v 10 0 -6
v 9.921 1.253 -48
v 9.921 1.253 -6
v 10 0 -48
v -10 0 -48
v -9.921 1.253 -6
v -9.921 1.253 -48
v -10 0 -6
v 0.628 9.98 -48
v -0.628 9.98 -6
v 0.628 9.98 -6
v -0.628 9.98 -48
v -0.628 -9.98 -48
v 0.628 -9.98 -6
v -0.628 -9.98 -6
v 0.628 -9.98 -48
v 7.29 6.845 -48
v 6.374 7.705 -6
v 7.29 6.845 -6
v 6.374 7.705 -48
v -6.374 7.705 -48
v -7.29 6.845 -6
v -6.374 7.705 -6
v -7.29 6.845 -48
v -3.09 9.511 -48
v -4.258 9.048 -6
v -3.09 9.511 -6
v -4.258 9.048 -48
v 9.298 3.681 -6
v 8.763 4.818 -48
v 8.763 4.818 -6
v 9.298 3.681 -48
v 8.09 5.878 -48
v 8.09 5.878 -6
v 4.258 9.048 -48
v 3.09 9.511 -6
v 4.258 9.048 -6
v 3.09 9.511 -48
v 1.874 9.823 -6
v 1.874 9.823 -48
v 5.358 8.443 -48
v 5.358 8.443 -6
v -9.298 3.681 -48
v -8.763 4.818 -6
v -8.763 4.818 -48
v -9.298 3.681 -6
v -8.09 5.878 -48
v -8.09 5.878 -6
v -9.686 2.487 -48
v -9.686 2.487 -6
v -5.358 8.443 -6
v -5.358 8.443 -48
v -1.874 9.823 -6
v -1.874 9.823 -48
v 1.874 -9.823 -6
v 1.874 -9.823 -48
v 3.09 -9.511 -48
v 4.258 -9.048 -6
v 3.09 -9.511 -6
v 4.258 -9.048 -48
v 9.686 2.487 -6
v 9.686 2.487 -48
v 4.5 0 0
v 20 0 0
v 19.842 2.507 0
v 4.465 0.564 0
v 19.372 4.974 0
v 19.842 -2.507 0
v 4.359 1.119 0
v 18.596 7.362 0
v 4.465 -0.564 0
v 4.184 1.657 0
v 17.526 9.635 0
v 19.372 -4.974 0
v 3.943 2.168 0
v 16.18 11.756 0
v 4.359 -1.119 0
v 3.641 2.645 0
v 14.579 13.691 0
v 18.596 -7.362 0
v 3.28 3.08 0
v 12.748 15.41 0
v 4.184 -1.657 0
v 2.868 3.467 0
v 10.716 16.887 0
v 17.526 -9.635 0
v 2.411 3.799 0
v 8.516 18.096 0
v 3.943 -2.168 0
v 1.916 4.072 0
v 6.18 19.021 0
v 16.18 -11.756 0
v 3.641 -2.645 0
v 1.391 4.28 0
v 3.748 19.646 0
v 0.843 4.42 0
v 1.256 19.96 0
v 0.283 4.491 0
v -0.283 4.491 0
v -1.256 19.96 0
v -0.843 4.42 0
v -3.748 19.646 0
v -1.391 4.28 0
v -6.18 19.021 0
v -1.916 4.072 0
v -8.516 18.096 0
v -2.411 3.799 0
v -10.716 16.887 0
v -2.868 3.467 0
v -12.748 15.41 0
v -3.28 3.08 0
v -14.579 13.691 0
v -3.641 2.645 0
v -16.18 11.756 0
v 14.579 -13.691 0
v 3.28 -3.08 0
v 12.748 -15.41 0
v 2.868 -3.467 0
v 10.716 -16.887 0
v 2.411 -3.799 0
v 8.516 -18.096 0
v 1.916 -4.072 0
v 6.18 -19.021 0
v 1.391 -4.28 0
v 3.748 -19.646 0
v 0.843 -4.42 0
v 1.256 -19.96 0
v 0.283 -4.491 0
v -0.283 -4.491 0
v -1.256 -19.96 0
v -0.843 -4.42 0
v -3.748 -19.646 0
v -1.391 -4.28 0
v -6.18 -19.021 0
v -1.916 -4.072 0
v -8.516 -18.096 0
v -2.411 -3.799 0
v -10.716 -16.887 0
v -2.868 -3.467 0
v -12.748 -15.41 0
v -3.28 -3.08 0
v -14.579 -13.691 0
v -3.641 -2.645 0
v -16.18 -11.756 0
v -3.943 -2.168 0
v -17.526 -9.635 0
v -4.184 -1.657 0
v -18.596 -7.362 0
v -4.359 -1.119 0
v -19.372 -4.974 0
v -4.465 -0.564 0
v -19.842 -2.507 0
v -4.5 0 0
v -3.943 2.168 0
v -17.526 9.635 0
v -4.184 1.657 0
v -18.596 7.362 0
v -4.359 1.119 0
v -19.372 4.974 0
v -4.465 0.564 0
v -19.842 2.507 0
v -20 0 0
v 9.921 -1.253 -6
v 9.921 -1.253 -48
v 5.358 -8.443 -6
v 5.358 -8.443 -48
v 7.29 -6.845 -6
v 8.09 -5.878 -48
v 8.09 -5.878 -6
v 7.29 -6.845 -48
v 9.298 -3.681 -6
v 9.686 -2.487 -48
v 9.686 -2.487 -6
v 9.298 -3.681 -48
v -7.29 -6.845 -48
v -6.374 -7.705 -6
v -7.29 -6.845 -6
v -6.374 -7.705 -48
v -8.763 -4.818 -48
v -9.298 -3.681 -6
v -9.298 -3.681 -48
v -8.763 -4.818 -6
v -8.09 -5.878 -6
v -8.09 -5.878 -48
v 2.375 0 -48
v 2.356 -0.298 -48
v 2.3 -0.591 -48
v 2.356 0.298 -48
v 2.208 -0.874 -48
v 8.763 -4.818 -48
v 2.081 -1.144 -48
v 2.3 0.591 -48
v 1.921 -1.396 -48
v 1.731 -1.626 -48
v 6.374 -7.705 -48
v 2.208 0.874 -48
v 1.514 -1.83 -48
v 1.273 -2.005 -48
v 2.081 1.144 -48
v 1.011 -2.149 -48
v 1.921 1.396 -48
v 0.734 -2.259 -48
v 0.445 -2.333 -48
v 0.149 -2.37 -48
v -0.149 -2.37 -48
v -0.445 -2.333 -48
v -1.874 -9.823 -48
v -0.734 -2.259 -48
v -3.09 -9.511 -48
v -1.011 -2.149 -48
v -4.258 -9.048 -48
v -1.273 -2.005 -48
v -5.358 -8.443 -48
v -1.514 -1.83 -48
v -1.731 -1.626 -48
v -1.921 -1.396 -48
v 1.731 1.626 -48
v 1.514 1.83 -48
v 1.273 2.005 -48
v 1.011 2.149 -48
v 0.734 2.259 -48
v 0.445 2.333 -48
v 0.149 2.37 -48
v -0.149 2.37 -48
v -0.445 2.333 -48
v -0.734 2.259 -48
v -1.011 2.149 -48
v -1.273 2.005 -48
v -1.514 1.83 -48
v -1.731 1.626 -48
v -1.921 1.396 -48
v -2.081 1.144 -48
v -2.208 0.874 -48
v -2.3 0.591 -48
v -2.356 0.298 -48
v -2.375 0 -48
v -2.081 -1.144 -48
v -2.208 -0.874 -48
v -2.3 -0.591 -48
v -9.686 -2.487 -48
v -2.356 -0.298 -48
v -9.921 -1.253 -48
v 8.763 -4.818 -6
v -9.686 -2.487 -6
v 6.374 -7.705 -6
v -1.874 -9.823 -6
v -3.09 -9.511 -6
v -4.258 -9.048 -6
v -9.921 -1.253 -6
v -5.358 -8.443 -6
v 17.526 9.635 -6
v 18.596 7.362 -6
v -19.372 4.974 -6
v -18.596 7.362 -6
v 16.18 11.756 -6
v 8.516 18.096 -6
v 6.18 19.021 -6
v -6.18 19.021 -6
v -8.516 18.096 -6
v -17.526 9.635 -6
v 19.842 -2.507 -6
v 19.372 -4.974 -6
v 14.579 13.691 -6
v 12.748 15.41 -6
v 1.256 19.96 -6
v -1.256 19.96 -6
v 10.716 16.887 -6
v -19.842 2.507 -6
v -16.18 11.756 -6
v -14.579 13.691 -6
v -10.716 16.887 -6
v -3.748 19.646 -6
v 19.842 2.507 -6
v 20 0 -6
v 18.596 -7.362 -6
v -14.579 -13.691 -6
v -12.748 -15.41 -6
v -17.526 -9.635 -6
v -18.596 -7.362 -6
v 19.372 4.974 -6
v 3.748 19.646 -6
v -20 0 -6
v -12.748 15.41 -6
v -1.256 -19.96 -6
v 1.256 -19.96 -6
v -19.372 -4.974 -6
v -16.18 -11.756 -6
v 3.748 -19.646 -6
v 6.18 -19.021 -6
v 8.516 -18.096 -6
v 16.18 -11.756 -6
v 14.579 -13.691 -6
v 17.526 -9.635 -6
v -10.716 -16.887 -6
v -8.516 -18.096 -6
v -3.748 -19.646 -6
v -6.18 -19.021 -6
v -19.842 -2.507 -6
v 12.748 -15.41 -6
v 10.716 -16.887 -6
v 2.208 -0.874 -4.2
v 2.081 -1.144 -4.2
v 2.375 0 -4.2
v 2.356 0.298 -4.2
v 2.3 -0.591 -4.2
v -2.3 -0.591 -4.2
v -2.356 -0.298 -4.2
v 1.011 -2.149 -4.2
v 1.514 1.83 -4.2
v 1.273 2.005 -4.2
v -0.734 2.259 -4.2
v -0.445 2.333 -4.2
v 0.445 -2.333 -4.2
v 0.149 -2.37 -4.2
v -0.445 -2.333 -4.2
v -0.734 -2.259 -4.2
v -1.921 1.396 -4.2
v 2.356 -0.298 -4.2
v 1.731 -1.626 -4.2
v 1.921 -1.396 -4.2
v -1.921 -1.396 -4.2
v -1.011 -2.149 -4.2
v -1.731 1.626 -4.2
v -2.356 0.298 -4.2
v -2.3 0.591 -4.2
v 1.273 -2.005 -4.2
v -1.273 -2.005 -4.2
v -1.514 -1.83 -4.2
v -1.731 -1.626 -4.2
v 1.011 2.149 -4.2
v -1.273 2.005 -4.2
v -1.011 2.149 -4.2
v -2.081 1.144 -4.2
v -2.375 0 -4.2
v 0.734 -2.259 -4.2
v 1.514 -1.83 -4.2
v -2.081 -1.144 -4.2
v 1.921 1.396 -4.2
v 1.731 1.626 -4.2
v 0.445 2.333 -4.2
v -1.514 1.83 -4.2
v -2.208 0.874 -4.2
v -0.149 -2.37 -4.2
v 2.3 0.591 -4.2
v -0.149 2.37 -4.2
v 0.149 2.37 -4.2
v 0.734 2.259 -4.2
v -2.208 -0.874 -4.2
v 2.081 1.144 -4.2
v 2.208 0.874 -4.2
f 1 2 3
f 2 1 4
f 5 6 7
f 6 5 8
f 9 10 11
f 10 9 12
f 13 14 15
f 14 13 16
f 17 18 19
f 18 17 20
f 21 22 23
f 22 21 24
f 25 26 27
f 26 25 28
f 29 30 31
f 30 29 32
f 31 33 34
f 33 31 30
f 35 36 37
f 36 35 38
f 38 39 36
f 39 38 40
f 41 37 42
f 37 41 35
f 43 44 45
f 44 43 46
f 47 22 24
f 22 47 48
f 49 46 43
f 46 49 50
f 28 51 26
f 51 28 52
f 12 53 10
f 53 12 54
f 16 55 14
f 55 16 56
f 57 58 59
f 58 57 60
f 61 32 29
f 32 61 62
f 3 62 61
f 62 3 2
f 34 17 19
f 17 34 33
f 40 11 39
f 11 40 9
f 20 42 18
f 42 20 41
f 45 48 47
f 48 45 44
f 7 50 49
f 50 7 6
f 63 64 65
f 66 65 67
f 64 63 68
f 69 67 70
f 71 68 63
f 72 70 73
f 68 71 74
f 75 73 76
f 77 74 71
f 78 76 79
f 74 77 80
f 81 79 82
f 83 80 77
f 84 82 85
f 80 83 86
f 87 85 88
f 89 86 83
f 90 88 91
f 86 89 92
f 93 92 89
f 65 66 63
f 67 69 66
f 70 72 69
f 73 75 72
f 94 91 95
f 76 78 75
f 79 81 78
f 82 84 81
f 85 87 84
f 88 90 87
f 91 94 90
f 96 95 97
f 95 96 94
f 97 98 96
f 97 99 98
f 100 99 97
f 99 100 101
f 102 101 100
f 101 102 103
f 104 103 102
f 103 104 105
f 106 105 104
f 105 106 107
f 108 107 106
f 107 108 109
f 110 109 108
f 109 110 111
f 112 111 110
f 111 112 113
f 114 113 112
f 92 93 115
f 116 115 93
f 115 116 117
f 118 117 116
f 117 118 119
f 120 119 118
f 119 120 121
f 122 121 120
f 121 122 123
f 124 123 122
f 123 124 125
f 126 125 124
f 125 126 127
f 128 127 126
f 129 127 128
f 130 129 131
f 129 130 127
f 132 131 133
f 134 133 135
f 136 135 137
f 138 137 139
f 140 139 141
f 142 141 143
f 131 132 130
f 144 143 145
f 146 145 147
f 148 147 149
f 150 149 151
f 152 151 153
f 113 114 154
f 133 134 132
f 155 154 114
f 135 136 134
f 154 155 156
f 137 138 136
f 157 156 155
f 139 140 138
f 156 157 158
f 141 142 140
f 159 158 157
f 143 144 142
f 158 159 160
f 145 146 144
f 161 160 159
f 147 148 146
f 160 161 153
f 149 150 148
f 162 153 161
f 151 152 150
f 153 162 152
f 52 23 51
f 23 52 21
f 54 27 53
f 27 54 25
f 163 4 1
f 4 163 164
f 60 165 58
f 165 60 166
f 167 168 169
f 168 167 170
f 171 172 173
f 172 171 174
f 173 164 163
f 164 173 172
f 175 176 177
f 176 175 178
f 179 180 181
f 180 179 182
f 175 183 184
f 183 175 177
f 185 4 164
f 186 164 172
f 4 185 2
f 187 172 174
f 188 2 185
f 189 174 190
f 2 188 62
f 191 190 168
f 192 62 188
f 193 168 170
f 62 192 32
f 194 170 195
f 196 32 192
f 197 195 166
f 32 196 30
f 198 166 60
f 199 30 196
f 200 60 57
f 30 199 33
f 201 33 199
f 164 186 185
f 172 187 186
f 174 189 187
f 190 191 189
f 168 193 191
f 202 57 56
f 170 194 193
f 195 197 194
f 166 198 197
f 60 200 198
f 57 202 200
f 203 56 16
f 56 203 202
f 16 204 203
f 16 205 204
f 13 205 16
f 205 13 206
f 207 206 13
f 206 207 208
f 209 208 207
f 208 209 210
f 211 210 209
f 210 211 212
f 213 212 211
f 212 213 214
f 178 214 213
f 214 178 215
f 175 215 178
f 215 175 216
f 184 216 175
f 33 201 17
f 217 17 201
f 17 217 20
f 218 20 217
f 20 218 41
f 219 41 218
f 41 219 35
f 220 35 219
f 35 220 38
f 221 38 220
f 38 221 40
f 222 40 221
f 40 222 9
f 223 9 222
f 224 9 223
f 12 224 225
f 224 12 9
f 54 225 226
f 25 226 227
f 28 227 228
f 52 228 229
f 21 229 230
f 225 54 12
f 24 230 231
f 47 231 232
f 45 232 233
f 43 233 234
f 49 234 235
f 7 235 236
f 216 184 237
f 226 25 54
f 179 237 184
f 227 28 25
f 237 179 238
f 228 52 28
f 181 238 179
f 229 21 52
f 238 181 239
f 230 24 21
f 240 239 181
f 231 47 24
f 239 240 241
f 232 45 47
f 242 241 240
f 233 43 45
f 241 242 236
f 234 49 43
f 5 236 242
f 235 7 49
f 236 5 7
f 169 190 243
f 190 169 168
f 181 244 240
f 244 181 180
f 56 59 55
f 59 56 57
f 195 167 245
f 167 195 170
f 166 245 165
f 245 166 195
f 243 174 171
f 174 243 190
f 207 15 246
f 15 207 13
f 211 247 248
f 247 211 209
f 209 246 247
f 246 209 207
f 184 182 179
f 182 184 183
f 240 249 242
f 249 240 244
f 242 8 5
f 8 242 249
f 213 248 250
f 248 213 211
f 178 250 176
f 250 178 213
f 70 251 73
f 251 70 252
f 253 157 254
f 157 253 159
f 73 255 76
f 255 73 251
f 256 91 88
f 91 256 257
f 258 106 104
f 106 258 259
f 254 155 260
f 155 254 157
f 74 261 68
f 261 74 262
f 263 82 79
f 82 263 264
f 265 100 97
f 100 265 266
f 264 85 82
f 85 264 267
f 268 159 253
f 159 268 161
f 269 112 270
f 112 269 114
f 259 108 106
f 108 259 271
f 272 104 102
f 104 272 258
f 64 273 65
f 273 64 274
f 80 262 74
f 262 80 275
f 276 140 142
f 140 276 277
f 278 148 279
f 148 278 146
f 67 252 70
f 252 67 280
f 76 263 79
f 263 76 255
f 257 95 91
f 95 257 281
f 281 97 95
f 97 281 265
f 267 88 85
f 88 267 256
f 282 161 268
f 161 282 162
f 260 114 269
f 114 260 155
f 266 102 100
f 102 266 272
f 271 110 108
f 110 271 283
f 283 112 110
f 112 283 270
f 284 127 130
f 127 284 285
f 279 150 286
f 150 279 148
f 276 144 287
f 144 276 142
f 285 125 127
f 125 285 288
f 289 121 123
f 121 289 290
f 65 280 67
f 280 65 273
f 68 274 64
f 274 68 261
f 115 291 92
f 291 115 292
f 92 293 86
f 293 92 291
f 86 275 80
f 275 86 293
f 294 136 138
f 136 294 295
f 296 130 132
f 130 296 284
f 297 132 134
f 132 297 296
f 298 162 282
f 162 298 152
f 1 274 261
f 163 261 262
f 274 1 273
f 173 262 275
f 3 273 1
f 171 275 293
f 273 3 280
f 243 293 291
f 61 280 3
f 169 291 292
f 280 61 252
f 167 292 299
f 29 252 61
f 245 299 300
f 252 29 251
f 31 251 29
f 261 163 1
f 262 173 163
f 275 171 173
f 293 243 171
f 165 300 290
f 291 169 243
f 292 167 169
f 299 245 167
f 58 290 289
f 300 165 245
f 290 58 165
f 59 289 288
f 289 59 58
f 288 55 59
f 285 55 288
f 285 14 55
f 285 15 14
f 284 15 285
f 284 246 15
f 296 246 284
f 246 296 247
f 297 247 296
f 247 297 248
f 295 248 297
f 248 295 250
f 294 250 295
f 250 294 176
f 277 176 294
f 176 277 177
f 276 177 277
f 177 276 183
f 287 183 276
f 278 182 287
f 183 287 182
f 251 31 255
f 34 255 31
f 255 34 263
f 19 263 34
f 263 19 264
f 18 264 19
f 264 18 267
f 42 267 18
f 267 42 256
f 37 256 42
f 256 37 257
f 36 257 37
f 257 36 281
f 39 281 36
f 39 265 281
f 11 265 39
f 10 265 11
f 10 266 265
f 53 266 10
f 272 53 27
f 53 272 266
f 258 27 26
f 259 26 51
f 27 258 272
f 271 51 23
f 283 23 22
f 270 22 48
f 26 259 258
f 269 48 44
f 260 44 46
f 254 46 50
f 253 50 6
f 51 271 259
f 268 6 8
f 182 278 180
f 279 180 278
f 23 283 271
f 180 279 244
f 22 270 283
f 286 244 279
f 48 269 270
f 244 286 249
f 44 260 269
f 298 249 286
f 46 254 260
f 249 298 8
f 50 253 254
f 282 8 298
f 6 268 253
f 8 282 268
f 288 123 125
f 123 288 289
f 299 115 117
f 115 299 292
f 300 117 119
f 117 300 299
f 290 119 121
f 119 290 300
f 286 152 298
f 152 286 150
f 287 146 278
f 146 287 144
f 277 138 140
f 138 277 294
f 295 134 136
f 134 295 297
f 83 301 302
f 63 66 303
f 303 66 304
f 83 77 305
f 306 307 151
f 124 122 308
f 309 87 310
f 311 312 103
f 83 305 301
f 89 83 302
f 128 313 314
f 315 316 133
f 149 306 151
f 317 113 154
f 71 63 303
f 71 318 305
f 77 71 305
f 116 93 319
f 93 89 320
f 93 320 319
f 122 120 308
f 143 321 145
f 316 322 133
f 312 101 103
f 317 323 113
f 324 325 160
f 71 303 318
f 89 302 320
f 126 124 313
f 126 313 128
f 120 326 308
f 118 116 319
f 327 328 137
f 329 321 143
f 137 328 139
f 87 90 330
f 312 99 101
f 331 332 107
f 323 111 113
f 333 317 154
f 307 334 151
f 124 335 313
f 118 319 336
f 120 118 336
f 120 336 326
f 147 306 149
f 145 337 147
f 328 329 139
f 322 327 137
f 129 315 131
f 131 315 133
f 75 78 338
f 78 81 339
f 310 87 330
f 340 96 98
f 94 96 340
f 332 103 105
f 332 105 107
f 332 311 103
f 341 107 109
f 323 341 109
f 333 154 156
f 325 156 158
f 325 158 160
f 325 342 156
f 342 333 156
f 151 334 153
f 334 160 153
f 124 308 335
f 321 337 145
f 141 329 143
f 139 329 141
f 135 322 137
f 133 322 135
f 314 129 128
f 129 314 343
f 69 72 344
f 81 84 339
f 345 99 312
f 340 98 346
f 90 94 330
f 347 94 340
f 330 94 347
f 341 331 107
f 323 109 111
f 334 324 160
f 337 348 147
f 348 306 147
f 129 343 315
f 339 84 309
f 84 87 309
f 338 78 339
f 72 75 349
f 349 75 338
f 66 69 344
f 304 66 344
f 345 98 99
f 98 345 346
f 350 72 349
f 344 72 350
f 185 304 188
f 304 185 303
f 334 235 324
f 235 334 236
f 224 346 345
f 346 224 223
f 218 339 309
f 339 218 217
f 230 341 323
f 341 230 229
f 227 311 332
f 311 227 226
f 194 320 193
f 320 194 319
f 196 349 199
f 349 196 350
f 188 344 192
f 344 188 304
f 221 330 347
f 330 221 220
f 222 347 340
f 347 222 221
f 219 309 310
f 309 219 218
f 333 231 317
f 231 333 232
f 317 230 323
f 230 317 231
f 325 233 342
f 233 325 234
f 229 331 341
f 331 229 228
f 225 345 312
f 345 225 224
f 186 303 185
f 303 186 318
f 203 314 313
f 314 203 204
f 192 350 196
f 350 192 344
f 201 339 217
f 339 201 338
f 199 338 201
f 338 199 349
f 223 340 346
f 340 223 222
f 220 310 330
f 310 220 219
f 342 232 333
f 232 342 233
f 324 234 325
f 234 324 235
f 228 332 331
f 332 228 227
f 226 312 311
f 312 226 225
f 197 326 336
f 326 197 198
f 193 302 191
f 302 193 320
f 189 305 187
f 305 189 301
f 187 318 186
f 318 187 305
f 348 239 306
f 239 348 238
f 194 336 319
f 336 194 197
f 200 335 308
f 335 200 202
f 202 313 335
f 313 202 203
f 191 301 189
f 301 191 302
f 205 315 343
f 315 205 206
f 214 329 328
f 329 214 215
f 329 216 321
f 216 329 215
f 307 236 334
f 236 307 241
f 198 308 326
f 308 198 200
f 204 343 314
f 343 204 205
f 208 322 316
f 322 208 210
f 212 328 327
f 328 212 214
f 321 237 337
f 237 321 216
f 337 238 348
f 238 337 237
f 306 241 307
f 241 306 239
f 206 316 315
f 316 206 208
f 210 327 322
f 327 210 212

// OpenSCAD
$fn = 50;


difference() {
	union() {
		translate(v = [0, 0, -48.0000000000]) {
			cylinder(h = 48, r = 10.0000000000);
		}
		translate(v = [0, 0, -6.0000000000]) {
			cylinder(h = 6, r = 20.0000000000);
		}
	}
	union() {
		translate(v = [0, 0, 0]) {
			rotate(a = [0, 0, 0]) {
				difference() {
					union() {
						#translate(v = [0, 0, -48.0000000000]) {
							cylinder(h = 48, r = 2.2500000000);
						}
						#translate(v = [0, 0, -4.2000000000]) {
							cylinder(h = 4.2000000000, r = 10.0000000000, r1 = 2.3750000000, r2 = 4.5000000000);
						}
						#translate(v = [0, 0, -48.0000000000]) {
							cylinder(h = 48, r = 2.3750000000);
						}
						#translate(v = [0, 0, -48.0000000000]) {
							cylinder(h = 48, r = 2.2500000000);
						}
					}
					union();
				}
			}
		}
	}
}
